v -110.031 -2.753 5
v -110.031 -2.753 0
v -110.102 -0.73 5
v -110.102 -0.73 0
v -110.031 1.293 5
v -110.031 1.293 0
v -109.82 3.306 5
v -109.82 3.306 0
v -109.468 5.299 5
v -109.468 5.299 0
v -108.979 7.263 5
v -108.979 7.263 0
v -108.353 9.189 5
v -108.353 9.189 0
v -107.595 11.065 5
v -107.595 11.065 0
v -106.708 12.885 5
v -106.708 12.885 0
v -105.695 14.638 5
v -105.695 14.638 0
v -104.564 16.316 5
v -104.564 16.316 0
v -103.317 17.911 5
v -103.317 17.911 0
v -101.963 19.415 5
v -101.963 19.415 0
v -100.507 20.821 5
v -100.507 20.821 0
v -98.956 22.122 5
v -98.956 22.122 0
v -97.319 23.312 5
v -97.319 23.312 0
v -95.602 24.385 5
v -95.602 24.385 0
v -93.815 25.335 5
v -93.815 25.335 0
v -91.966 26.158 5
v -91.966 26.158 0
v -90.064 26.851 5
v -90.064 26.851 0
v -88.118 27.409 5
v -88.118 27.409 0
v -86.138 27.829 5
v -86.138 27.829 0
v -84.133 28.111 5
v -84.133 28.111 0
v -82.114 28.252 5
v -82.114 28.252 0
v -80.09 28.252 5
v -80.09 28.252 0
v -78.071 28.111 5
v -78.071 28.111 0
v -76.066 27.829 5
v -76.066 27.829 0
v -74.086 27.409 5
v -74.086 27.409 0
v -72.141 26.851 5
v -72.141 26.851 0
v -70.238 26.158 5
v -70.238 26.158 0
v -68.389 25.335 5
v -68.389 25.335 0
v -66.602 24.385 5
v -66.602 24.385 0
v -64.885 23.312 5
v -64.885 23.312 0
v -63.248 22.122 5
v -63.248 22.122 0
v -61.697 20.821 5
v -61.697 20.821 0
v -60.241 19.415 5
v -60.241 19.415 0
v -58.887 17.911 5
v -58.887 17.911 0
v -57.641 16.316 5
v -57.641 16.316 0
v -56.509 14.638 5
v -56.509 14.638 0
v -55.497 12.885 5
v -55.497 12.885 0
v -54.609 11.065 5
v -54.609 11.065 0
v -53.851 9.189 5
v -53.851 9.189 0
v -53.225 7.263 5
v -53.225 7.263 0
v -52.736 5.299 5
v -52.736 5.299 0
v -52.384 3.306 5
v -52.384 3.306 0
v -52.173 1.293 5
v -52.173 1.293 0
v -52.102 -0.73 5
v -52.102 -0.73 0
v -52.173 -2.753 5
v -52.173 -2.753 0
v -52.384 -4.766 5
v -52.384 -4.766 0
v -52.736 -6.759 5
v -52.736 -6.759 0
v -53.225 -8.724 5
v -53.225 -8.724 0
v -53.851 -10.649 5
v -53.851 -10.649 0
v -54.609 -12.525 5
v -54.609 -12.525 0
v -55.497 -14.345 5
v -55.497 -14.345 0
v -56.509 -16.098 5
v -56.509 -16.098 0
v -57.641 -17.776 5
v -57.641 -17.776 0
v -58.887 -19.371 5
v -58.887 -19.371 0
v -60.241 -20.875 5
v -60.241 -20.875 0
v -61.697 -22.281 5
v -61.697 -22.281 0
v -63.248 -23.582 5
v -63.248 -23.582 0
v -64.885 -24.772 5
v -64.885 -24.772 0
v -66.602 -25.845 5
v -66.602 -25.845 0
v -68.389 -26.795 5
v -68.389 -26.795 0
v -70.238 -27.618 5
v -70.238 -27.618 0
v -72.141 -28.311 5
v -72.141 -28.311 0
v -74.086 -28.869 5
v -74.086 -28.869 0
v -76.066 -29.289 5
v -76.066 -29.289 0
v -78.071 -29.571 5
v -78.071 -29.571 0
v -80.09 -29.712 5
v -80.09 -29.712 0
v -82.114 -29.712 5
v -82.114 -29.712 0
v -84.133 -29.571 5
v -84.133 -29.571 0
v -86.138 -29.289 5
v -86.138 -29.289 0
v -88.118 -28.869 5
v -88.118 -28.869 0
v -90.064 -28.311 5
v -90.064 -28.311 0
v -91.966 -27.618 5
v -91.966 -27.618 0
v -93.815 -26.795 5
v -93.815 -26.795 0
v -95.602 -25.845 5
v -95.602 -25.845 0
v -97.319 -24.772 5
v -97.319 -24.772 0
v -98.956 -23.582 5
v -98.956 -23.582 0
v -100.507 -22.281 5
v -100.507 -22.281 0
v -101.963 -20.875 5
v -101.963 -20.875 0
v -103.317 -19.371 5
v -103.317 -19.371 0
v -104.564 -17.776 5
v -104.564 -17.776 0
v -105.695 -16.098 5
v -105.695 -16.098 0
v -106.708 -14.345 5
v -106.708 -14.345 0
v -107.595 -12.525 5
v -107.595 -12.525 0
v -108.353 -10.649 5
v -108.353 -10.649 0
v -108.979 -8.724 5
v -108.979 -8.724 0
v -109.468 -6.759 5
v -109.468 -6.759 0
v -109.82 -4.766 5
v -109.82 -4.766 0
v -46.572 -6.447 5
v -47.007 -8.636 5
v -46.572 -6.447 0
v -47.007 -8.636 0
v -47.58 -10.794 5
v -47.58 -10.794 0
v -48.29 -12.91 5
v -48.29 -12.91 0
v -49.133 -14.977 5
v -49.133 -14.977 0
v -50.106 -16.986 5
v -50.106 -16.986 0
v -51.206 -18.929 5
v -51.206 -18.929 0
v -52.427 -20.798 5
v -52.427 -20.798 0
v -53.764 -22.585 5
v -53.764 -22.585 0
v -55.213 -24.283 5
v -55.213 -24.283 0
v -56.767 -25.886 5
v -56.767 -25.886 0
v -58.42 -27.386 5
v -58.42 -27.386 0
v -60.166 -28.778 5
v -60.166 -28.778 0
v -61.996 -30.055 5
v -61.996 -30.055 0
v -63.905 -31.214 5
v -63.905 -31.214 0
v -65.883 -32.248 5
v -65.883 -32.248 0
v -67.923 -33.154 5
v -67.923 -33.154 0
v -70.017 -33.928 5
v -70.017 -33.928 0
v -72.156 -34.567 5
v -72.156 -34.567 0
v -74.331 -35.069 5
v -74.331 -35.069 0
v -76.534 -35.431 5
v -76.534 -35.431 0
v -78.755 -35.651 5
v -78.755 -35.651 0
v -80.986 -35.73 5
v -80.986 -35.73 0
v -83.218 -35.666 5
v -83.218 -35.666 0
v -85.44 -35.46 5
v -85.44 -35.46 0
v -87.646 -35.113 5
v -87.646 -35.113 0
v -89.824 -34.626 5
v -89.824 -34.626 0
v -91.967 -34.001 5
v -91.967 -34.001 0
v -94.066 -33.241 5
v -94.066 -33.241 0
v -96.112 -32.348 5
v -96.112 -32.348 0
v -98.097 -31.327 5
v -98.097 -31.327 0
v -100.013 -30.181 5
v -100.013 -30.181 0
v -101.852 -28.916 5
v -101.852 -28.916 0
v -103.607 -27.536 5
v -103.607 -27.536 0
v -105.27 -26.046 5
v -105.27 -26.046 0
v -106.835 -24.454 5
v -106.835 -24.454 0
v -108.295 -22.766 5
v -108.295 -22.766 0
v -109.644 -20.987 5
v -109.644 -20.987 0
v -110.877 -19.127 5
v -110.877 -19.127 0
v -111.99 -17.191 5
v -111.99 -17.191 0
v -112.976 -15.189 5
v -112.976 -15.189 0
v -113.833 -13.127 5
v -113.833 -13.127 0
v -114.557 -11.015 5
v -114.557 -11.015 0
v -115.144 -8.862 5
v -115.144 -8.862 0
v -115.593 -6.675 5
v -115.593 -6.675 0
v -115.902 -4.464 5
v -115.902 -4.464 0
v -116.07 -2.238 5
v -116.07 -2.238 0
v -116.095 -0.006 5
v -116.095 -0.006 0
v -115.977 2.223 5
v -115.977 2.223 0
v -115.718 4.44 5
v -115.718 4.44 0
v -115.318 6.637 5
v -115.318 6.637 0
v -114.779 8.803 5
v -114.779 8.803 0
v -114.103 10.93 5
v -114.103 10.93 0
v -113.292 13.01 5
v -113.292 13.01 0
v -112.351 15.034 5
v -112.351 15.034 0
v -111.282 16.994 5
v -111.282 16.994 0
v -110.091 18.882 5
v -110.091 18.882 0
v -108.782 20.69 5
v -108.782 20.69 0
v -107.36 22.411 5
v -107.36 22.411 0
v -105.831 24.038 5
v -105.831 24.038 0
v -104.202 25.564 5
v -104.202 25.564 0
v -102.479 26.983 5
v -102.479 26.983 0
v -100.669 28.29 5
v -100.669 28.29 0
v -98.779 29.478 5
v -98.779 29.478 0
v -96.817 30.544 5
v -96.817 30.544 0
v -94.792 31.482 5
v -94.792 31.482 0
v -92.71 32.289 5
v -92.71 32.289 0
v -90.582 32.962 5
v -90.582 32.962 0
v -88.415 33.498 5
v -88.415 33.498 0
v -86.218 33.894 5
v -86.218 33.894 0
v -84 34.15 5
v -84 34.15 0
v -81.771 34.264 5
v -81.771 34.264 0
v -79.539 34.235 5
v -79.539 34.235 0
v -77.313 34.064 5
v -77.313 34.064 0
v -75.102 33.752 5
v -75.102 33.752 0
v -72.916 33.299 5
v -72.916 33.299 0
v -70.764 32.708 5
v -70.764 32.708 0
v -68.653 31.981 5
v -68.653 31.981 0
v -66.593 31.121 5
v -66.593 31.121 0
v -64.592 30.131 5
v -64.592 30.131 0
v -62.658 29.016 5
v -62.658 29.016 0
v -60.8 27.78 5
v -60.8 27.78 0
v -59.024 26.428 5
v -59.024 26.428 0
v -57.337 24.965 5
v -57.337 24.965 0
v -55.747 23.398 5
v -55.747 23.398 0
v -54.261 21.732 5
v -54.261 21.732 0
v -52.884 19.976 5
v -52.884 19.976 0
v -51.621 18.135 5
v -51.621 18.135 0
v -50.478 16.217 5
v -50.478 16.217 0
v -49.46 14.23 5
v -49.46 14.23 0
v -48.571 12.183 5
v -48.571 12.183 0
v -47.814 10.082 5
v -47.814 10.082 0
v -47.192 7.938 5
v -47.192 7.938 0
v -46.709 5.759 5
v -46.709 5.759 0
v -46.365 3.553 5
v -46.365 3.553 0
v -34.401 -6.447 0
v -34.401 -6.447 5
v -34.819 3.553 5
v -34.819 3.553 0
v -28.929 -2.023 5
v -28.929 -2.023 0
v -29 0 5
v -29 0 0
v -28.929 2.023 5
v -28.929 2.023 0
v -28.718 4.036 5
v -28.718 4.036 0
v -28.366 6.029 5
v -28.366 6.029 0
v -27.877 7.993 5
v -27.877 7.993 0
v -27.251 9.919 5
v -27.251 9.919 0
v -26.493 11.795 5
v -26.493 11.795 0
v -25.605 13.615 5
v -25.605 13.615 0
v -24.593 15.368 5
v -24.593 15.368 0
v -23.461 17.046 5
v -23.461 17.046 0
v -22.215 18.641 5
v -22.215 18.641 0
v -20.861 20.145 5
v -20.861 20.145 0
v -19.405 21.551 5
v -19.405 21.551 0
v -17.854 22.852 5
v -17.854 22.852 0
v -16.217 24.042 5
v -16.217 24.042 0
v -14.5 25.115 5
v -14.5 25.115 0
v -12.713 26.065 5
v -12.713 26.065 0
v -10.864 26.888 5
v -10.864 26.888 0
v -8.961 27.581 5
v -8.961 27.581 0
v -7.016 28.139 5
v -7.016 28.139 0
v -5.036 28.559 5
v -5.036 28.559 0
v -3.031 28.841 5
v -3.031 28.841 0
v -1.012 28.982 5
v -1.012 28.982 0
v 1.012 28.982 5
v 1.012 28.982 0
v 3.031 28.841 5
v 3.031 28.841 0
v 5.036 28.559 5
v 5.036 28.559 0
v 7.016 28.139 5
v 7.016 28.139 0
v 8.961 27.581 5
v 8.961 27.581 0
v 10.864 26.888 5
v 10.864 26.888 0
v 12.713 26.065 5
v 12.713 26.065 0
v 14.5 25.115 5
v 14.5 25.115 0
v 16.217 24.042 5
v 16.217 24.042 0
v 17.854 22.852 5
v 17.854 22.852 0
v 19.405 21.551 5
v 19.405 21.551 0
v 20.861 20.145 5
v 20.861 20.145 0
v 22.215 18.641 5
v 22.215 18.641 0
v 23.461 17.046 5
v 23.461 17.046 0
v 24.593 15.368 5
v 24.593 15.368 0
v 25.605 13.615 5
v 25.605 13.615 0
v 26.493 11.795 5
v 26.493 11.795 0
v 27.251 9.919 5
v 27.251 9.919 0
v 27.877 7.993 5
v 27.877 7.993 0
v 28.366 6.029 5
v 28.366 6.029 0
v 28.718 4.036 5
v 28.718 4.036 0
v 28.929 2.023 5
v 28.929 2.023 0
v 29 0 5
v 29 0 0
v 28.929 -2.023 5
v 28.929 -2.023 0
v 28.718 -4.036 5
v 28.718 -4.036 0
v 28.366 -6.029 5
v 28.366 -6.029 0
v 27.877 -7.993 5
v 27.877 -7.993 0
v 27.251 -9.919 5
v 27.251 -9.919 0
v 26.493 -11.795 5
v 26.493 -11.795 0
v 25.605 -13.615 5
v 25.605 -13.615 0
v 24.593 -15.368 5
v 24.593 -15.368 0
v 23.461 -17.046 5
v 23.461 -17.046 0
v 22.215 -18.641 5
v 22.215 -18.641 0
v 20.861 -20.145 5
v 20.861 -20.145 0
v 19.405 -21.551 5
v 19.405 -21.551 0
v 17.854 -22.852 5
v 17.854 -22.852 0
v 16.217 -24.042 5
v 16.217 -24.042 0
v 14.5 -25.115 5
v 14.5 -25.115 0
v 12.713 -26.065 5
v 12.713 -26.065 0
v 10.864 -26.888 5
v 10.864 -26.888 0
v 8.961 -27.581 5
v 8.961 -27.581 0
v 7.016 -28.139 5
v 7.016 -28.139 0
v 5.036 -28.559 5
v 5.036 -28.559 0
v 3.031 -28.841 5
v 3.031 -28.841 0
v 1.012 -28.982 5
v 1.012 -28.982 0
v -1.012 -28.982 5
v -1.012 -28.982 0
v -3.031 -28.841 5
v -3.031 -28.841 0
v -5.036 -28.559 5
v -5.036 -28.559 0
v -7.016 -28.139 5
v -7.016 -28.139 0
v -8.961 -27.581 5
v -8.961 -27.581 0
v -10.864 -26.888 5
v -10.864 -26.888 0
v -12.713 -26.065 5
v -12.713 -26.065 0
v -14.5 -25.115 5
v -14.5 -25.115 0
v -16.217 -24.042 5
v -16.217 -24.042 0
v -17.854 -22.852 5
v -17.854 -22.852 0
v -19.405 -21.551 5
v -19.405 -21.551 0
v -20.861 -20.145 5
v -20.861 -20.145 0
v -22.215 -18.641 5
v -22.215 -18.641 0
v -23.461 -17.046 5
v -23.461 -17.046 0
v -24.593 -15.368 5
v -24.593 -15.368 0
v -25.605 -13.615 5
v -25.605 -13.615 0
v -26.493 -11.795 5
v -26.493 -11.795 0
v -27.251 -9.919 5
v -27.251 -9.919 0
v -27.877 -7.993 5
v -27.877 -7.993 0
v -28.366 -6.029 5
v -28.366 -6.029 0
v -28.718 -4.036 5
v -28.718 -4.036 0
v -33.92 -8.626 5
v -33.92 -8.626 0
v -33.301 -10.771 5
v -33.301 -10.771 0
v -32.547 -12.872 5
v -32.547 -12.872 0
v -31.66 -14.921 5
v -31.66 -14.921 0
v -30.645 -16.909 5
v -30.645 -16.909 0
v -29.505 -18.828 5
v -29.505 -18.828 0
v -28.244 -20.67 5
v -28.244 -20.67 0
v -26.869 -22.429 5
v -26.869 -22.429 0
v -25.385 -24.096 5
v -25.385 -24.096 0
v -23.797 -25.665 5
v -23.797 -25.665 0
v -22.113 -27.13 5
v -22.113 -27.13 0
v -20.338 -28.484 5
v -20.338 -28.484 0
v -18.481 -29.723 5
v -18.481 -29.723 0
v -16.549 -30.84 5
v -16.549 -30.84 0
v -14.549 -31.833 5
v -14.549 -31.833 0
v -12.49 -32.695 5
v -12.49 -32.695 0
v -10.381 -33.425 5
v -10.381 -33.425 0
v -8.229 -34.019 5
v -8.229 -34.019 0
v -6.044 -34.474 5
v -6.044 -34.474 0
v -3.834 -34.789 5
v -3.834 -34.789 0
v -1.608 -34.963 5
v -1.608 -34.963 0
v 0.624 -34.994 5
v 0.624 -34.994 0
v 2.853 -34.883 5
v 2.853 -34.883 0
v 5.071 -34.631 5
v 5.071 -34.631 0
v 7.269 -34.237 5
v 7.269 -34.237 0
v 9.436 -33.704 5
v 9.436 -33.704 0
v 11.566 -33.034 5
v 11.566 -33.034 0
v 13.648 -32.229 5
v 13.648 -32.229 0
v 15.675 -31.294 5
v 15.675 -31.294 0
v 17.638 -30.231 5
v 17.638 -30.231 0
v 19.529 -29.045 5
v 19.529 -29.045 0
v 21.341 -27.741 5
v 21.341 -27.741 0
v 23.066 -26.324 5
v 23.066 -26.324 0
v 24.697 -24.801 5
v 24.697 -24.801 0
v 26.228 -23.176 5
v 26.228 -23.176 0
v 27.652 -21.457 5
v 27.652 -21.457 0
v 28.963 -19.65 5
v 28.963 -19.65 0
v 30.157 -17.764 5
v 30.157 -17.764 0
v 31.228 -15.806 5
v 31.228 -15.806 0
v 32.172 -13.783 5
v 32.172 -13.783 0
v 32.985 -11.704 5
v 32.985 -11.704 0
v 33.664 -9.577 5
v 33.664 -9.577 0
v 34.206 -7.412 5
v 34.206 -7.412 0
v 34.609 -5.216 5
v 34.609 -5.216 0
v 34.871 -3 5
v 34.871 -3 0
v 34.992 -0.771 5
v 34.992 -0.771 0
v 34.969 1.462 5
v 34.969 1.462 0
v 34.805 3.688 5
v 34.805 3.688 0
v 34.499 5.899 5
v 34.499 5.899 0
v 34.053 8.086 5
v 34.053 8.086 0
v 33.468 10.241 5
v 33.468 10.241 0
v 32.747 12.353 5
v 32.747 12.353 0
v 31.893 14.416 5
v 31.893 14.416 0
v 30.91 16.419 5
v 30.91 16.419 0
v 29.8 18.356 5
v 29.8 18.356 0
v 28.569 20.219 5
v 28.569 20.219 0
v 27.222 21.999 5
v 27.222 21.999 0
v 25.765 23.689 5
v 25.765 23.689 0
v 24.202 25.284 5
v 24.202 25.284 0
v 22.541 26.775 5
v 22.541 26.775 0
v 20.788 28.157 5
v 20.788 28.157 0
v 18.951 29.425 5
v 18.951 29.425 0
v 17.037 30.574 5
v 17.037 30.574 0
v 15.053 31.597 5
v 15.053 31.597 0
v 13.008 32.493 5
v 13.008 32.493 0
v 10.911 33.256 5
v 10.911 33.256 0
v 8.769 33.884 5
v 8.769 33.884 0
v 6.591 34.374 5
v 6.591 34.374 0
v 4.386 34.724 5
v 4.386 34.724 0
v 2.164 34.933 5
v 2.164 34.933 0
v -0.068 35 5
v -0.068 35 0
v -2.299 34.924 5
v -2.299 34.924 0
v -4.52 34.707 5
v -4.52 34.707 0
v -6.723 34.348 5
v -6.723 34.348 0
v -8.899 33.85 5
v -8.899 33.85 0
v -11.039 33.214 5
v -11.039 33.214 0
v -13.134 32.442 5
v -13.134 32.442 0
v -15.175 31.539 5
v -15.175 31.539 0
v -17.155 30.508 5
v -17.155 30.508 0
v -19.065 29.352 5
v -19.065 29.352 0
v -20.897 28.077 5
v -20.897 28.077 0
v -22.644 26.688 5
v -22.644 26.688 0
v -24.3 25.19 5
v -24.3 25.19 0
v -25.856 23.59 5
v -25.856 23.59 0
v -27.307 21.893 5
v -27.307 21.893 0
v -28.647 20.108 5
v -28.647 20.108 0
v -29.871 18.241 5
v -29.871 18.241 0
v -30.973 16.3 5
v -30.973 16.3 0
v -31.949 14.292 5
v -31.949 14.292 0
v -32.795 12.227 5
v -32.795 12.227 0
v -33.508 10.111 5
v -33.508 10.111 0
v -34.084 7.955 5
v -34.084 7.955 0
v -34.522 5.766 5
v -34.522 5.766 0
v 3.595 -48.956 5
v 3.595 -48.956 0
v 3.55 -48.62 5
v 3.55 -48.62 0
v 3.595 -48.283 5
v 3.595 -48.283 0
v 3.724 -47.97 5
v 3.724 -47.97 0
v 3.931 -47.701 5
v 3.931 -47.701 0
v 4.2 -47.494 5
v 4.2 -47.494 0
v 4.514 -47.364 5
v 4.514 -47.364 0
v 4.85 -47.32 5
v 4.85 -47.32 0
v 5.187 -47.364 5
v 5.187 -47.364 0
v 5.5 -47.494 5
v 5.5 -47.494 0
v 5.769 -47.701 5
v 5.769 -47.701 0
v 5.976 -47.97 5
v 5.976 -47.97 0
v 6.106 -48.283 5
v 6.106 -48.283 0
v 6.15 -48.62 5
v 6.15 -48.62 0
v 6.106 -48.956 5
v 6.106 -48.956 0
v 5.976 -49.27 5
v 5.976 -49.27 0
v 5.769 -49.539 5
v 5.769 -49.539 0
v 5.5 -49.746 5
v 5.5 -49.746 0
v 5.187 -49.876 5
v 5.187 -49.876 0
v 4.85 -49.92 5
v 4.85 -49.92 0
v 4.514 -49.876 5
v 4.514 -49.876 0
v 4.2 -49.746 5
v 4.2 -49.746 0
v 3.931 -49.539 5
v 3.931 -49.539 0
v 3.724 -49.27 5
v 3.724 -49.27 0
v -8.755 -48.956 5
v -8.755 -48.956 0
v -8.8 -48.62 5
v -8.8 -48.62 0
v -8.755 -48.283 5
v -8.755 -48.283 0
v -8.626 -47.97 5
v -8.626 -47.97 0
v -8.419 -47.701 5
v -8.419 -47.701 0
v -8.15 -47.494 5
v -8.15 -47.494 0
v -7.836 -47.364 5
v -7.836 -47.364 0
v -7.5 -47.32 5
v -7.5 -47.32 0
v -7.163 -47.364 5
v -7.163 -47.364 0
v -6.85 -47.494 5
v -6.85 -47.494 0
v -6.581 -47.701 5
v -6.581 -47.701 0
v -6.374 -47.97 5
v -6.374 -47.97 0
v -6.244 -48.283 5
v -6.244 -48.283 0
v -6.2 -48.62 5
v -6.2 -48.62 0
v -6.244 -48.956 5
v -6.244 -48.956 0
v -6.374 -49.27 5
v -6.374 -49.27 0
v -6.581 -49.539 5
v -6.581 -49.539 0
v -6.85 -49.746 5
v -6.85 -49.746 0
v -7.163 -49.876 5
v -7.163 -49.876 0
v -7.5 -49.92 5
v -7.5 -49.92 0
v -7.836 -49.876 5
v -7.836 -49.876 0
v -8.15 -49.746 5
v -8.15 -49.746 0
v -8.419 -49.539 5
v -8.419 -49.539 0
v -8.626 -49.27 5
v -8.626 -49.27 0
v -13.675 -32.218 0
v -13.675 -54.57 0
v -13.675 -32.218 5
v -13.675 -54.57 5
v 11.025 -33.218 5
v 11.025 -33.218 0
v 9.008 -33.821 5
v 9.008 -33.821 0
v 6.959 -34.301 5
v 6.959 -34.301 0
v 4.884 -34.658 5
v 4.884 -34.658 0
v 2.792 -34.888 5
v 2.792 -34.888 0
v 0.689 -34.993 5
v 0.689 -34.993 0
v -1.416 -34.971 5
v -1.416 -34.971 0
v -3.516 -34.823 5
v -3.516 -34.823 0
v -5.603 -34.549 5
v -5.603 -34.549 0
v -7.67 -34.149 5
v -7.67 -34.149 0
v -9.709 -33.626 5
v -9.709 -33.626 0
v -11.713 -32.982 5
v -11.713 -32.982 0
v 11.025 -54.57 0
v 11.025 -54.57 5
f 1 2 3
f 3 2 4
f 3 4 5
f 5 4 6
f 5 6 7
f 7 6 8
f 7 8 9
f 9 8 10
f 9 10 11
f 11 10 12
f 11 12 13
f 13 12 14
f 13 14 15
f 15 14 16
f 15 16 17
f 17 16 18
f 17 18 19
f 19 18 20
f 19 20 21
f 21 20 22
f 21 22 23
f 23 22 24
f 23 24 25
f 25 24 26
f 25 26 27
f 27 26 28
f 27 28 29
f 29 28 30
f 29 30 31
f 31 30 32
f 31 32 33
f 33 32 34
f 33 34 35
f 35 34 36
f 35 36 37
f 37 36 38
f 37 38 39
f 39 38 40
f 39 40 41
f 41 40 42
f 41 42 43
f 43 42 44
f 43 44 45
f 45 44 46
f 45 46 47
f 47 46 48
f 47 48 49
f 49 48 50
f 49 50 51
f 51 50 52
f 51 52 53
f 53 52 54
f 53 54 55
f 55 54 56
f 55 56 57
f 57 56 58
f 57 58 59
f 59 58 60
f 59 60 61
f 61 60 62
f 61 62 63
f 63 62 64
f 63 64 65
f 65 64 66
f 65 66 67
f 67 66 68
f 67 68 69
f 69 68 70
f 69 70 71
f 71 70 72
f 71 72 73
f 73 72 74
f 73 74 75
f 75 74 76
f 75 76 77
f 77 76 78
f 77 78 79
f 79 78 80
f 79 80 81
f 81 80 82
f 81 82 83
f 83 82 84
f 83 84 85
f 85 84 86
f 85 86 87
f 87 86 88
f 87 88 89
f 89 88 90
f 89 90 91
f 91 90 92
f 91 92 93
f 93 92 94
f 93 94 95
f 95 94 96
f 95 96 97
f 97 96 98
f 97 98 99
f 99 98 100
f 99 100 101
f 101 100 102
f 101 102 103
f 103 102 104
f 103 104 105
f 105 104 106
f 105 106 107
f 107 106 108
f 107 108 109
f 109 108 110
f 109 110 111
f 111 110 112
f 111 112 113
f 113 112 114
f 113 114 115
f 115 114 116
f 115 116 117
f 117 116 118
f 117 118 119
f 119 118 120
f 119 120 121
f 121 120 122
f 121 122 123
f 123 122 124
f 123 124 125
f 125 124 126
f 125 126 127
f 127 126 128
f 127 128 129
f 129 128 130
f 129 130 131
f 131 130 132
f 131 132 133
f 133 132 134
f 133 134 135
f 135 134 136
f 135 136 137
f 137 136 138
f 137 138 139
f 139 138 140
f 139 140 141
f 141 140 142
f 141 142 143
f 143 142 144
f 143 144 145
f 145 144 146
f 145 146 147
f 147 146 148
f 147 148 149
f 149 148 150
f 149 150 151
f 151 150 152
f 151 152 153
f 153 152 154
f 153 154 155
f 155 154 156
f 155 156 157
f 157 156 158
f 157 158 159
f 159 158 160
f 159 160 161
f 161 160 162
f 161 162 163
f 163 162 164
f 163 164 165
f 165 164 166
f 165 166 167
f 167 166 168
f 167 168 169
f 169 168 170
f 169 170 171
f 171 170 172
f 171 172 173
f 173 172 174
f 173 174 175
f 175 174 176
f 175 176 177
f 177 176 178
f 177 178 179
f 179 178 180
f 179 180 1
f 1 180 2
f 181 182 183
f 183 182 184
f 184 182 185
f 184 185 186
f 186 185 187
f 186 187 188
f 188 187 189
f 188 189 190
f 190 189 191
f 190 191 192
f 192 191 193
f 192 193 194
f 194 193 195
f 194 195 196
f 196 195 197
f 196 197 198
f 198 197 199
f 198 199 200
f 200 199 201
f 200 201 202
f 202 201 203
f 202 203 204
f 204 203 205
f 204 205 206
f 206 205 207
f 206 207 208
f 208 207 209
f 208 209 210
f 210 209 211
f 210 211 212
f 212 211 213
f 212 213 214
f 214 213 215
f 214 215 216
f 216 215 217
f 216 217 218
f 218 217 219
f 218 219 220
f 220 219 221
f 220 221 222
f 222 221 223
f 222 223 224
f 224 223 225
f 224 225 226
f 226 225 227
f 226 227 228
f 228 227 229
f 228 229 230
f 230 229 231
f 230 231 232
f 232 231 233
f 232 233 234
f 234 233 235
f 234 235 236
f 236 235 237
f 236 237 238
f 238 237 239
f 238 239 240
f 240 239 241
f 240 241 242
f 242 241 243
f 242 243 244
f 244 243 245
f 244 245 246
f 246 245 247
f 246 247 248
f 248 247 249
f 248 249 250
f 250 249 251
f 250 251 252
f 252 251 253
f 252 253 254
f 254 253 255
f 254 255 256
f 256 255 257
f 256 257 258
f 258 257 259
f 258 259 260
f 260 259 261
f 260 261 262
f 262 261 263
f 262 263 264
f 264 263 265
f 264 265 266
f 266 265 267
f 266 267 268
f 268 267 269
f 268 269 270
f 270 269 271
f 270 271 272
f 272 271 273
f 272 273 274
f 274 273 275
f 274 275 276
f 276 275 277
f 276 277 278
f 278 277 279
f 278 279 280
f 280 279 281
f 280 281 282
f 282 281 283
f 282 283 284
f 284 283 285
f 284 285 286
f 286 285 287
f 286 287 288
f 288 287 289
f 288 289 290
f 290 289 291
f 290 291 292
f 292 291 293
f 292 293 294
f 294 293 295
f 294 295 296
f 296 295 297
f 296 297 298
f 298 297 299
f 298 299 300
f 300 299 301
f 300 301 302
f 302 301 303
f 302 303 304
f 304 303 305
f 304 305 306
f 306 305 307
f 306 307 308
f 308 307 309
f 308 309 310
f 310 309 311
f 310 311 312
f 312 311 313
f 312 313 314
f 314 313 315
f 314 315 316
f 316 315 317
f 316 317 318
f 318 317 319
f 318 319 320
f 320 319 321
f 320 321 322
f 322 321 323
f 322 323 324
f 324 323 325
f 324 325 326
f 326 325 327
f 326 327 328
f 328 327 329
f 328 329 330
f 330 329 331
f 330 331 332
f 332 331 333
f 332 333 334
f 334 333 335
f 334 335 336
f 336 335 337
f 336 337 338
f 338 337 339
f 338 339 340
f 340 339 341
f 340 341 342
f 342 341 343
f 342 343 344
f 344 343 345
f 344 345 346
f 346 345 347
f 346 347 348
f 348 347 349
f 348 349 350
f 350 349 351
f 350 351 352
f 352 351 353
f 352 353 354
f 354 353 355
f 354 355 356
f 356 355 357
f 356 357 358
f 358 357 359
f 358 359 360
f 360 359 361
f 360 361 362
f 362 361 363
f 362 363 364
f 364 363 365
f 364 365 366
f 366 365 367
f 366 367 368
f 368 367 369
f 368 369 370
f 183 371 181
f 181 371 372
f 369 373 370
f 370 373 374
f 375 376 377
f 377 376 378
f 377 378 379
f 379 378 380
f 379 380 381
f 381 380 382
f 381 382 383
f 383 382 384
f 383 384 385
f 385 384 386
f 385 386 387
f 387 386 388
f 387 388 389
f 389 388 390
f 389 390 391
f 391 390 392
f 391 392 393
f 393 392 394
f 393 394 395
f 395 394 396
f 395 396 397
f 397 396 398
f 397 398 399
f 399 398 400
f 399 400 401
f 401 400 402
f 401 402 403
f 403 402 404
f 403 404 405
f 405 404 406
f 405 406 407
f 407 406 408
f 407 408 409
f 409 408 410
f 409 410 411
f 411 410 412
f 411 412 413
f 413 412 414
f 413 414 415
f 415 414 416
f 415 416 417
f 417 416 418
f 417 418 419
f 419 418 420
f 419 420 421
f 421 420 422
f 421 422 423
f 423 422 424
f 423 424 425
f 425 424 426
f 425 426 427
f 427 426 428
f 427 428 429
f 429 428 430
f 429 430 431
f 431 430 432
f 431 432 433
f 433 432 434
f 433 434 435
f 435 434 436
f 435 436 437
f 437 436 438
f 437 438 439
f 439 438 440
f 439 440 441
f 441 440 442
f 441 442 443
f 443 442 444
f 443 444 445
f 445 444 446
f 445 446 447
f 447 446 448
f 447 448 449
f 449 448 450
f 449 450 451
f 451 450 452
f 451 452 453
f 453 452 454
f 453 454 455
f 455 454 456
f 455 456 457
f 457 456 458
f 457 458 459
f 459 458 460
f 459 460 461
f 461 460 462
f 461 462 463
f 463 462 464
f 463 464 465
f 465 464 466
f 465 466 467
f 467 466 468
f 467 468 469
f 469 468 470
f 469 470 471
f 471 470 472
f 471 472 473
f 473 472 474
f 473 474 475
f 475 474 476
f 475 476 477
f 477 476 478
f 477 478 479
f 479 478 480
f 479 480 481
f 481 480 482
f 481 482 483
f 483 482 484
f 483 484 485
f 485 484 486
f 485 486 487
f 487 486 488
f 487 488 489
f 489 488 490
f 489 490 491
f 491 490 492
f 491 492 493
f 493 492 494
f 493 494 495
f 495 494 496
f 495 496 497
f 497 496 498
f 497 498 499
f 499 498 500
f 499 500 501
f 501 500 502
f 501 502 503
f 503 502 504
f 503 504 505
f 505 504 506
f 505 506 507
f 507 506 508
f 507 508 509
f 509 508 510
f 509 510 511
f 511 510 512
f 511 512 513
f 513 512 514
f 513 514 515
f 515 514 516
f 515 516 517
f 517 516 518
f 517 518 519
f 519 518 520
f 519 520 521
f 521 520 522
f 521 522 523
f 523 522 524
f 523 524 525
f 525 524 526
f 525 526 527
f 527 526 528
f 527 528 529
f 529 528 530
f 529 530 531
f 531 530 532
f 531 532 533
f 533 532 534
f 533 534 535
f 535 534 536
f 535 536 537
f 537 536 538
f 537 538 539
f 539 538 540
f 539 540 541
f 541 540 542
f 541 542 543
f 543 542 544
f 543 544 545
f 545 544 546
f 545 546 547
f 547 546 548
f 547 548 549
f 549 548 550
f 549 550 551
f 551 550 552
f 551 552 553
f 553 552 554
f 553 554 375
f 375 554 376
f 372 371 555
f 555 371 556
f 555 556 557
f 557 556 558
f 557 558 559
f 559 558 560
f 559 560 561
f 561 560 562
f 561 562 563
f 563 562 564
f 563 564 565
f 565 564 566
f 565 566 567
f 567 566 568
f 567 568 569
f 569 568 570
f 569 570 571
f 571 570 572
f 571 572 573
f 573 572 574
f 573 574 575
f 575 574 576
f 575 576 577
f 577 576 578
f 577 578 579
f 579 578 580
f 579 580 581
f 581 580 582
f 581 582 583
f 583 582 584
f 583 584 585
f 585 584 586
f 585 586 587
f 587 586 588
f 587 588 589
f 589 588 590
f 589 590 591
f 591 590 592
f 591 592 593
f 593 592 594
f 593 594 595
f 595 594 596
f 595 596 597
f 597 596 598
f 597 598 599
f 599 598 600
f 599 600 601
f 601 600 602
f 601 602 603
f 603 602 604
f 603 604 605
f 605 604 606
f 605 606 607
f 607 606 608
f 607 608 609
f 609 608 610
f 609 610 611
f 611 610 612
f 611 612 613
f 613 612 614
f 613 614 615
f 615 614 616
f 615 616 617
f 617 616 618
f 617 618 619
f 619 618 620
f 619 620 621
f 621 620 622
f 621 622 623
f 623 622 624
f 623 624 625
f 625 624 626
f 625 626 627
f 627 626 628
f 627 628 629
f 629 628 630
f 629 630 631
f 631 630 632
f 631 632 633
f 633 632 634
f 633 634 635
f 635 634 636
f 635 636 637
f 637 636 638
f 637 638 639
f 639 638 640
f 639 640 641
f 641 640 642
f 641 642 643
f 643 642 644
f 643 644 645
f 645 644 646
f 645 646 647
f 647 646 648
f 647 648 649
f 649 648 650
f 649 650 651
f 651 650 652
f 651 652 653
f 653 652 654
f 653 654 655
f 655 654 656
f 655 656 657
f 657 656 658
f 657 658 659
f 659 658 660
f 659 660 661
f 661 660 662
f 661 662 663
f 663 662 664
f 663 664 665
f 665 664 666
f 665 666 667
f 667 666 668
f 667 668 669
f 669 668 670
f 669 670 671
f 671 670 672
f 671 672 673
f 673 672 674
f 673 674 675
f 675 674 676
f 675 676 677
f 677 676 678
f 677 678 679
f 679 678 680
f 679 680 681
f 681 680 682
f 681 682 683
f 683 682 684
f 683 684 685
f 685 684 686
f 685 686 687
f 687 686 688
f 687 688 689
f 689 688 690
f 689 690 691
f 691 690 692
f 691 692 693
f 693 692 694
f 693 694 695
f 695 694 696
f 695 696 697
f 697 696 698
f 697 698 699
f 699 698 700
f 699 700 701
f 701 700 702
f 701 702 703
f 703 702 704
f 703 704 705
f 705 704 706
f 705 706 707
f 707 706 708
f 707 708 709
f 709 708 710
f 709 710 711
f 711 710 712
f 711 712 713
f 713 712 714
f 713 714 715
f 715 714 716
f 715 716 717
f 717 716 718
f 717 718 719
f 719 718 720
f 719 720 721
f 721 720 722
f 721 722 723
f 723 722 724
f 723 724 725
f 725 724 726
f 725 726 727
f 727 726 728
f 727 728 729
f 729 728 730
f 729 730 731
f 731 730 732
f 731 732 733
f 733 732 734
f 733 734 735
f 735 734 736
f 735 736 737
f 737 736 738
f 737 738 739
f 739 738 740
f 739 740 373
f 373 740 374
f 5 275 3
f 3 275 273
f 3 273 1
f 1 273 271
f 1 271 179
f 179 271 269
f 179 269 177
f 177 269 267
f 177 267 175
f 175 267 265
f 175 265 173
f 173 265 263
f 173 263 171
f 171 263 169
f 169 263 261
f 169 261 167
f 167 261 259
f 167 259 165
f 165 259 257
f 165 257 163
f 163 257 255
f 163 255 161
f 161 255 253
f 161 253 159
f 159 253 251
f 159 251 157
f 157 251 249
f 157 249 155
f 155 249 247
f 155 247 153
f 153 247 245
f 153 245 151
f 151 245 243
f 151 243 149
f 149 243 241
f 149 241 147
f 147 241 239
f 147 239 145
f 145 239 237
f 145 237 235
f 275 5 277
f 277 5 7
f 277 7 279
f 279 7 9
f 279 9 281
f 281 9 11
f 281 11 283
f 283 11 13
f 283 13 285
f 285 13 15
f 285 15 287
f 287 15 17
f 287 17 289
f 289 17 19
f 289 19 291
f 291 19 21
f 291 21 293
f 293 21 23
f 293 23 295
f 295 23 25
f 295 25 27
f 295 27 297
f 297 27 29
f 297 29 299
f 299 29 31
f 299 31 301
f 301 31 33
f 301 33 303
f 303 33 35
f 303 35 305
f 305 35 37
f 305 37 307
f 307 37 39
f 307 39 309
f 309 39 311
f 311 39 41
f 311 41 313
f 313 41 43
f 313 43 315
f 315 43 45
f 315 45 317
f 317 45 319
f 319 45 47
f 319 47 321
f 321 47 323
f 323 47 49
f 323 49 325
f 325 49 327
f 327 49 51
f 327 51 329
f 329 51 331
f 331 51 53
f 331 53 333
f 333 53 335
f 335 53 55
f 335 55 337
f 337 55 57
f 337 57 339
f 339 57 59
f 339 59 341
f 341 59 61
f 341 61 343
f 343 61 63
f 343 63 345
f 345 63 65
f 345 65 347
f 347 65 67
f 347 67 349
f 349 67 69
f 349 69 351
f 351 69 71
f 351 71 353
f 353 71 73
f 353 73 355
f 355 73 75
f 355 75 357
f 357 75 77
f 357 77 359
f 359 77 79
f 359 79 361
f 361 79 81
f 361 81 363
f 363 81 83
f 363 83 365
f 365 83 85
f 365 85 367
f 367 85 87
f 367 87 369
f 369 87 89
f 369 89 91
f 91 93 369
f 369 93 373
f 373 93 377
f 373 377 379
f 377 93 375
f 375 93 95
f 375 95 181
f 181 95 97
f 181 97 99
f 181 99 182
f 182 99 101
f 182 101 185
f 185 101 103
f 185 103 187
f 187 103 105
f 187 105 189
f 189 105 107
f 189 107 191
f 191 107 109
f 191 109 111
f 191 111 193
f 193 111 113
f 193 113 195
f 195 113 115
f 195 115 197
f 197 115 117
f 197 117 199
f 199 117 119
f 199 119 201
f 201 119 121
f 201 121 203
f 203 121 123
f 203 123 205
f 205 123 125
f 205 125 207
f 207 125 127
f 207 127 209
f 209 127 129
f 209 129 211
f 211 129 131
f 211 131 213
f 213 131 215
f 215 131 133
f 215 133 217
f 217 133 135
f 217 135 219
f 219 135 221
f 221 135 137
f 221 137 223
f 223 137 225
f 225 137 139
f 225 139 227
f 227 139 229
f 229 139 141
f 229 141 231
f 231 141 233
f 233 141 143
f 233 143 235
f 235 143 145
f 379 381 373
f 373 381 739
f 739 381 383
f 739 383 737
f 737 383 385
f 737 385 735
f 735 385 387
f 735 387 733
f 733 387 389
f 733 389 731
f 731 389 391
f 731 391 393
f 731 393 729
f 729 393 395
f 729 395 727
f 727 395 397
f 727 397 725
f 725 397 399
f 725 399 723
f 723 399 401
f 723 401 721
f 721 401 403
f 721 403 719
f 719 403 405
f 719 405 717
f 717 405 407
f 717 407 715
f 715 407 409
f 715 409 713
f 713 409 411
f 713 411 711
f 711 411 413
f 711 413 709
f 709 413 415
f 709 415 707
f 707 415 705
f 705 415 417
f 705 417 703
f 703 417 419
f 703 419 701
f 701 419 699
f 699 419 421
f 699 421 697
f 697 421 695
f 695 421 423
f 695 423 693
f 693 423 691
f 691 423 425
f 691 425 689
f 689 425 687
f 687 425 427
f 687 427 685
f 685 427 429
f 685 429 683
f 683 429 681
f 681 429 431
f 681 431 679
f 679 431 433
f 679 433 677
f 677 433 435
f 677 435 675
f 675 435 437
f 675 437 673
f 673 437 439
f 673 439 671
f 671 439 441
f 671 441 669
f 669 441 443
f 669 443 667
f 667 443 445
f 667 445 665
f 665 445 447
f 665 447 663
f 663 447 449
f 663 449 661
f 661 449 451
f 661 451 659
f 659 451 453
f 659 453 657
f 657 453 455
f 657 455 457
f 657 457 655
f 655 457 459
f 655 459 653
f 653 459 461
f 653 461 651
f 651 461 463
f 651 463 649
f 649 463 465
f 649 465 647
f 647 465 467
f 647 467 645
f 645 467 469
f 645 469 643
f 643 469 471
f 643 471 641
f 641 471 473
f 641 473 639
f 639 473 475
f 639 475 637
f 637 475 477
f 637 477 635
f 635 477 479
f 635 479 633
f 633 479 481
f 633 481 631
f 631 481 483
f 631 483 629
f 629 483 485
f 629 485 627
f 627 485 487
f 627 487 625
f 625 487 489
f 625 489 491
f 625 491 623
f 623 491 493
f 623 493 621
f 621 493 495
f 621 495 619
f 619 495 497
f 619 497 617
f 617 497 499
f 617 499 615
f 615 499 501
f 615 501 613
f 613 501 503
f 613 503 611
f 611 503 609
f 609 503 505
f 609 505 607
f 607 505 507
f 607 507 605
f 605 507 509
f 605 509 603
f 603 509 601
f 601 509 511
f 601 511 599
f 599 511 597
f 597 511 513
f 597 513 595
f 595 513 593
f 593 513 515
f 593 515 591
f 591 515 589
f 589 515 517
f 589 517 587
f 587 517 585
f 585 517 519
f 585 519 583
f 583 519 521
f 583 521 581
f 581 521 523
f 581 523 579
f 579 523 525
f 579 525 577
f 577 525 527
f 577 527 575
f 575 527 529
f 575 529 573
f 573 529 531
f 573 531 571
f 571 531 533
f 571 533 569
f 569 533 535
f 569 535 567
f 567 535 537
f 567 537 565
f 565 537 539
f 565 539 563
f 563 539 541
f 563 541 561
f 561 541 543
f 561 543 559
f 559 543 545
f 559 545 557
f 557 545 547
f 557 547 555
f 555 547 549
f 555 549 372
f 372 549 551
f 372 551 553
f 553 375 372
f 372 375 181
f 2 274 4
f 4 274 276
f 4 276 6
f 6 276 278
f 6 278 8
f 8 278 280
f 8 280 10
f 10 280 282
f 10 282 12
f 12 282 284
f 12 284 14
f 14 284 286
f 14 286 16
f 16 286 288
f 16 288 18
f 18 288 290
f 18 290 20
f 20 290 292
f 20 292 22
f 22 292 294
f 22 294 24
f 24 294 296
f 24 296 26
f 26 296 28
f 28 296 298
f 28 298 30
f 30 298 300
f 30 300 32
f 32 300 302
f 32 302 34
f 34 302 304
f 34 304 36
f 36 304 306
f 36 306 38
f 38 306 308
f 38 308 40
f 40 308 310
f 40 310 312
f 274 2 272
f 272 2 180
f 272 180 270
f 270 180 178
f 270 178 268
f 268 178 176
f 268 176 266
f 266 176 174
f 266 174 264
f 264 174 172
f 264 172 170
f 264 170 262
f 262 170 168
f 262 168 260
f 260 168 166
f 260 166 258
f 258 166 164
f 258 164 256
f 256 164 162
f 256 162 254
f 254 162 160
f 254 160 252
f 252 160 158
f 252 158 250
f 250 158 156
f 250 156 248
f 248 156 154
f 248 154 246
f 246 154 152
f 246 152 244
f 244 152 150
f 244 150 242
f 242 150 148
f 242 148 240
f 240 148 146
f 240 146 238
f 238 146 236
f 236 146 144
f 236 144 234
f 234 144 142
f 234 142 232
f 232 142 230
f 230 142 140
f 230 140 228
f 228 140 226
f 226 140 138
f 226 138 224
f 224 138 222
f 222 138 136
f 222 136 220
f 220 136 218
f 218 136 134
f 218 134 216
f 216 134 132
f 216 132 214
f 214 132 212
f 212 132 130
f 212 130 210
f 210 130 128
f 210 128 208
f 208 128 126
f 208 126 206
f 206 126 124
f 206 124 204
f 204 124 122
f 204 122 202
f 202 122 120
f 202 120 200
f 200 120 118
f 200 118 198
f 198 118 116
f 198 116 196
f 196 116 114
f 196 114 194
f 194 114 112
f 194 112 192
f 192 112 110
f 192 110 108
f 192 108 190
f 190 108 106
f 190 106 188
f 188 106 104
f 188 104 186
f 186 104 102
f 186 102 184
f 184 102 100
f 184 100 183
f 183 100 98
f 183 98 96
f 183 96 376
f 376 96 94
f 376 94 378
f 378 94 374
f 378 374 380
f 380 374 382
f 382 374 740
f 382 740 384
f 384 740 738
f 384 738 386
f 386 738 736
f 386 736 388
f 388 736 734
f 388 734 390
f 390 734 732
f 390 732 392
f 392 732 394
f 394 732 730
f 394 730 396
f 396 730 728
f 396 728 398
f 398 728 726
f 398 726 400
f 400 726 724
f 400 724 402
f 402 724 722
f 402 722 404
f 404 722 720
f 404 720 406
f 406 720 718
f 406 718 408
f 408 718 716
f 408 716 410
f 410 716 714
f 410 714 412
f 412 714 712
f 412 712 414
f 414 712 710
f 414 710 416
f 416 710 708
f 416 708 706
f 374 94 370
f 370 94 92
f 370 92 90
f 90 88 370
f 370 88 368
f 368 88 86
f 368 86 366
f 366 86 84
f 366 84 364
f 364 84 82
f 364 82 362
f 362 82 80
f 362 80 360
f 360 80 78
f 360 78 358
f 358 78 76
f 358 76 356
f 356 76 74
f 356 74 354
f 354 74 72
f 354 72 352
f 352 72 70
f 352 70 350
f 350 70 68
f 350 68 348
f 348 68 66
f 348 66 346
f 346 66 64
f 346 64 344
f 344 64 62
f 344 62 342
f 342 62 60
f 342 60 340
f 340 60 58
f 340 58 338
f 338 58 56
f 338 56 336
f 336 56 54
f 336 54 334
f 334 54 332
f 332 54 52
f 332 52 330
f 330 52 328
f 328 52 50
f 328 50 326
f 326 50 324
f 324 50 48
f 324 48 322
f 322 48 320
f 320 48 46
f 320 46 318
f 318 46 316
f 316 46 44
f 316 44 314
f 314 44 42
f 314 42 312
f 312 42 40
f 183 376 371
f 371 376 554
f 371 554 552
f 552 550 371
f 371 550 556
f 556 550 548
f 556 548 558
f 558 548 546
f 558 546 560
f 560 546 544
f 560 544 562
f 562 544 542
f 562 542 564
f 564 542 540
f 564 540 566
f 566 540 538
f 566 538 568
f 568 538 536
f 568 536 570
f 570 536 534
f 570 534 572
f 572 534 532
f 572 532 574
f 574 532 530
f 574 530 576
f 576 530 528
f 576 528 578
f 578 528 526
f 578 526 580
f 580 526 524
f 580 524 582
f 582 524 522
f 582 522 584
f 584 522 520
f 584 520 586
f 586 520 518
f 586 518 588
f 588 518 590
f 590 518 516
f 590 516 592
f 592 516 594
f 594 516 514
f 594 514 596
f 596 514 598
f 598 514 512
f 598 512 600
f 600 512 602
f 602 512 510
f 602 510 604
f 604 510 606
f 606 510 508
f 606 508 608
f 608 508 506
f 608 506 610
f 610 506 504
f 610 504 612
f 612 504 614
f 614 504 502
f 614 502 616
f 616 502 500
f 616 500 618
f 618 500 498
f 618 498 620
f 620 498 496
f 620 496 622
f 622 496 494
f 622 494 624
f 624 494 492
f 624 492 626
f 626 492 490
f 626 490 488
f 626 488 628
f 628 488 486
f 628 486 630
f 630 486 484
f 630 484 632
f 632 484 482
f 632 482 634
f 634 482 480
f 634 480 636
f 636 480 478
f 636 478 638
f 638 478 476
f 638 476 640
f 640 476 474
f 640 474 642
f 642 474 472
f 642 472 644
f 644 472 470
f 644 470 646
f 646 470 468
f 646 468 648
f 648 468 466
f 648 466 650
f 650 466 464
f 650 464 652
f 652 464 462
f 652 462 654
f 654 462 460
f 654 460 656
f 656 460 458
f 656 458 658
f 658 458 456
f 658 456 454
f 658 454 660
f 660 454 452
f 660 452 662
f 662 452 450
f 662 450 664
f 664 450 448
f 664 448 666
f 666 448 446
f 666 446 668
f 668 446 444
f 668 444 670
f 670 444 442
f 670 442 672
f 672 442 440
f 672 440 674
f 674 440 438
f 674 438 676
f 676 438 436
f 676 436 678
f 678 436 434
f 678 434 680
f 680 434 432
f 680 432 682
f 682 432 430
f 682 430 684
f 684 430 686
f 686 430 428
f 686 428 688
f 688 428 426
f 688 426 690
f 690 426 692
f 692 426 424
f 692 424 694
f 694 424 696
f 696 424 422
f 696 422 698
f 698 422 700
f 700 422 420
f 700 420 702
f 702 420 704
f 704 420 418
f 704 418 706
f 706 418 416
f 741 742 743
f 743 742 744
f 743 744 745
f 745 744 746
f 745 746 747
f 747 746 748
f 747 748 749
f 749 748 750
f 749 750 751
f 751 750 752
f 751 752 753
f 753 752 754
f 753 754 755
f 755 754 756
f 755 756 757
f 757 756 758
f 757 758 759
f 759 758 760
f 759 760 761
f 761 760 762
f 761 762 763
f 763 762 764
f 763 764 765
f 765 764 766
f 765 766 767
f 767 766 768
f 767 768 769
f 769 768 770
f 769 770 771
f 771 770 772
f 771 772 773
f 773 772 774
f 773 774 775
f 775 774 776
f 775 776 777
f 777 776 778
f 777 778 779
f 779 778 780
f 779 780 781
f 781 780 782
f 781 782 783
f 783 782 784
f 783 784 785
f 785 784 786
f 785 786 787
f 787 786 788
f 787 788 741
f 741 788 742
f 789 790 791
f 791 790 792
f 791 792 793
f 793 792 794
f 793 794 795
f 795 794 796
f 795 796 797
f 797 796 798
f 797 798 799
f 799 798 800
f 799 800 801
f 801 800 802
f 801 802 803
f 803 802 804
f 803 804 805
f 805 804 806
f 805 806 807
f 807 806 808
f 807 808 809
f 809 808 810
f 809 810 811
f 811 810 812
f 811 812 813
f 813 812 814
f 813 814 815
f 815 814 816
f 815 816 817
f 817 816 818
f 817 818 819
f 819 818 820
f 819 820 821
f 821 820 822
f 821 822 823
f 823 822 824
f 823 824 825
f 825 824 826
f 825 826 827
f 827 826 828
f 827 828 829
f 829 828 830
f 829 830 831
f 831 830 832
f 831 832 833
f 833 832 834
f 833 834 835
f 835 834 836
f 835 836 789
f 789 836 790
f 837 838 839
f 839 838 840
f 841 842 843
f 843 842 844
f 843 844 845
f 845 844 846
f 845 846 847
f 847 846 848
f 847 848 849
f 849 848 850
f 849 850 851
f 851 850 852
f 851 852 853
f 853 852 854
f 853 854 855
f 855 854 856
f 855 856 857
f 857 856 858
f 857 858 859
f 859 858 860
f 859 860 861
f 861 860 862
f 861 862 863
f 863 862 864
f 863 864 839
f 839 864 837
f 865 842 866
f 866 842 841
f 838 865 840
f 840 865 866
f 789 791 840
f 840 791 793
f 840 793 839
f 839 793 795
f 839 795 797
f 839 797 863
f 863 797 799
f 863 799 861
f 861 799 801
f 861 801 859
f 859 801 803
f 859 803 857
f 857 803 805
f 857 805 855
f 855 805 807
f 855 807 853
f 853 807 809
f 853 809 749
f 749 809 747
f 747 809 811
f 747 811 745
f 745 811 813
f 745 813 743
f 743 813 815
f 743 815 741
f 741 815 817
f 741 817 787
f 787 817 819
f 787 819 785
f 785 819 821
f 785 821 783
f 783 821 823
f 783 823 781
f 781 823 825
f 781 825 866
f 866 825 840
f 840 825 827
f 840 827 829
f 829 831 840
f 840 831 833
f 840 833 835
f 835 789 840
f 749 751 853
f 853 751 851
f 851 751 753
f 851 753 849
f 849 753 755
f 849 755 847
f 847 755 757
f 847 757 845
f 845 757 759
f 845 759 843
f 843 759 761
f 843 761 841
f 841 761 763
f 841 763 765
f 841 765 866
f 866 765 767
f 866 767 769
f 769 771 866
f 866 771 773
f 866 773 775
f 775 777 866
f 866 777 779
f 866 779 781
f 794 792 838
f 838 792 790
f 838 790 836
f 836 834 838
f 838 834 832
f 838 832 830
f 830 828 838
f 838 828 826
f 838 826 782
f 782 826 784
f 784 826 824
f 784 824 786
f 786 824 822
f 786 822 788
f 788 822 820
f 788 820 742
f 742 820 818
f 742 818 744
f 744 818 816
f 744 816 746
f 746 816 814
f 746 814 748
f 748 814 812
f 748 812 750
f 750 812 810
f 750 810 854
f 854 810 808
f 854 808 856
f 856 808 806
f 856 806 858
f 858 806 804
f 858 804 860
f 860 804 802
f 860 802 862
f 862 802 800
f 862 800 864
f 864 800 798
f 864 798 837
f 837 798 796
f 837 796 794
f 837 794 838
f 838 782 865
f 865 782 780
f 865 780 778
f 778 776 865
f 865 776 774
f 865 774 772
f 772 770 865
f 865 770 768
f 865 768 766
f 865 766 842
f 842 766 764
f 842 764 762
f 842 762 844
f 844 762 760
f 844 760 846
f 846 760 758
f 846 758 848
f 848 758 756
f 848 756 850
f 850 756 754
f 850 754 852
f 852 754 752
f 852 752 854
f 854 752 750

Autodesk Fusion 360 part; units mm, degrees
sketch "Sketch1" plane through (0, 0, 0) normal (0, 0, 1) x (1, 0, 0)
  circle A0 centre (0, 0) radius 29
  circle A1 centre (0, 0) radius 35
  line L0 (-13.6747, -29.8699) -> (11.0253, -29.8699)
  line L1 (11.0253, -29.8699) -> (11.0253, -54.5699)
  line L2 (11.0253, -54.5699) -> (-13.6747, -54.5699)
  line L3 (-13.6747, -54.5699) -> (-13.6747, -29.8699)
  line L4 (-31.8811, 3.5534) -> (-49.8811, 3.5534)
  line L5 (-49.8811, 3.5534) -> (-49.8811, -6.4466)
  line L6 (-49.8811, -6.4466) -> (-31.8811, -6.4466)
  line L7 (-31.8811, -6.4466) -> (-31.8811, 3.5534)
  line L8 (-13.6747, -48.6199) -> (-7.4997, -48.6199)
  line L9 (-7.4997, -54.5699) -> (-7.4997, -48.6199)
  line L10 (11.0253, -48.6199) -> (4.8503, -48.6199)
  line L11 (4.8719, -54.5699) -> (4.8719, -48.6199)
  circle A2 centre (4.8503, -48.6199) radius 1.3
  circle A3 centre (-7.4997, -48.6199) radius 1.3
  dimension "d3" = 58
  dimension "d4" = 70
  dimension "d12" = 24.7
  dimension "d13" = 24.7
  dimension "d14" = 18
  dimension "d15" = 10
  dimension "d18" = 6.175
  dimension "d19" = 5.95
  dimension "d20" = 6.175
  dimension "d21" = 5.95
  dimension "d23" = 2.6
  dimension "d24" = 2.6
extrude "Extrude1" add sketch "Sketch1" along normal blind 5 contours A1 L0 L1 L3 L4 L6 L7 | A1 L4 L6 L7 | A1 L0 L1 L3 makes body 1
extrude "Extrude2" add sketch "Sketch1" along normal blind 5 separate body contours A1 L1 L2 L3 L8 L9 L10 L11 A2 A3 | L1 L2 L10 L11 A2 | L2 L3 L8 L9 A3 makes body 2
sketch "Sketch2" plane through (0, 0, 0) normal (0, 0, 1) x (1, 0, 0)
  circle A0 centre (-81.102, -0.73) radius 29
  circle A1 centre (-81.102, -0.73) radius 35
  dimension "d27" = 58
  dimension "d28" = 70
extrude "Extrude3" add sketch "Sketch1" sketch "Sketch2" along normal blind 5 contours A1 L4 L5 L6 of sketch 2 bodies 1
equation "holder_d = 58 mm"
equation "holder_od = holder_d + 12 mm"
equation "d3 = holder_d"
equation "d4 = holder_od"
equation "d5 = holder_thickness"
equation "holder_thickness = 5 mm"
equation "mount_w = 24.7 mm"
equation "mount_l = 24.7 mm"
equation "connecter_w = 10 mm"
equation "connecter_l = 18 mm"
equation "d12 = mount_w"
equation "d13 = mount_l"
equation "d14 = connecter_l"
equation "d15 = connecter_w"
equation "offset_m3hole_w = 6.175 mm"
equation "offset_m3hole_l = 5.95 mm"
equation "d18 = offset_m3hole_w"
equation "d19 = offset_m3hole_l"
equation "d20 = offset_m3hole_w"
equation "m3_diam = 2.6 mm"
equation "d23 = m3_diam"
equation "d24 = m3_diam"
equation "d25 = holder_thickness"
equation "d27 = holder_d"
equation "d28 = holder_od"
equation "d29 = holder_thickness"
